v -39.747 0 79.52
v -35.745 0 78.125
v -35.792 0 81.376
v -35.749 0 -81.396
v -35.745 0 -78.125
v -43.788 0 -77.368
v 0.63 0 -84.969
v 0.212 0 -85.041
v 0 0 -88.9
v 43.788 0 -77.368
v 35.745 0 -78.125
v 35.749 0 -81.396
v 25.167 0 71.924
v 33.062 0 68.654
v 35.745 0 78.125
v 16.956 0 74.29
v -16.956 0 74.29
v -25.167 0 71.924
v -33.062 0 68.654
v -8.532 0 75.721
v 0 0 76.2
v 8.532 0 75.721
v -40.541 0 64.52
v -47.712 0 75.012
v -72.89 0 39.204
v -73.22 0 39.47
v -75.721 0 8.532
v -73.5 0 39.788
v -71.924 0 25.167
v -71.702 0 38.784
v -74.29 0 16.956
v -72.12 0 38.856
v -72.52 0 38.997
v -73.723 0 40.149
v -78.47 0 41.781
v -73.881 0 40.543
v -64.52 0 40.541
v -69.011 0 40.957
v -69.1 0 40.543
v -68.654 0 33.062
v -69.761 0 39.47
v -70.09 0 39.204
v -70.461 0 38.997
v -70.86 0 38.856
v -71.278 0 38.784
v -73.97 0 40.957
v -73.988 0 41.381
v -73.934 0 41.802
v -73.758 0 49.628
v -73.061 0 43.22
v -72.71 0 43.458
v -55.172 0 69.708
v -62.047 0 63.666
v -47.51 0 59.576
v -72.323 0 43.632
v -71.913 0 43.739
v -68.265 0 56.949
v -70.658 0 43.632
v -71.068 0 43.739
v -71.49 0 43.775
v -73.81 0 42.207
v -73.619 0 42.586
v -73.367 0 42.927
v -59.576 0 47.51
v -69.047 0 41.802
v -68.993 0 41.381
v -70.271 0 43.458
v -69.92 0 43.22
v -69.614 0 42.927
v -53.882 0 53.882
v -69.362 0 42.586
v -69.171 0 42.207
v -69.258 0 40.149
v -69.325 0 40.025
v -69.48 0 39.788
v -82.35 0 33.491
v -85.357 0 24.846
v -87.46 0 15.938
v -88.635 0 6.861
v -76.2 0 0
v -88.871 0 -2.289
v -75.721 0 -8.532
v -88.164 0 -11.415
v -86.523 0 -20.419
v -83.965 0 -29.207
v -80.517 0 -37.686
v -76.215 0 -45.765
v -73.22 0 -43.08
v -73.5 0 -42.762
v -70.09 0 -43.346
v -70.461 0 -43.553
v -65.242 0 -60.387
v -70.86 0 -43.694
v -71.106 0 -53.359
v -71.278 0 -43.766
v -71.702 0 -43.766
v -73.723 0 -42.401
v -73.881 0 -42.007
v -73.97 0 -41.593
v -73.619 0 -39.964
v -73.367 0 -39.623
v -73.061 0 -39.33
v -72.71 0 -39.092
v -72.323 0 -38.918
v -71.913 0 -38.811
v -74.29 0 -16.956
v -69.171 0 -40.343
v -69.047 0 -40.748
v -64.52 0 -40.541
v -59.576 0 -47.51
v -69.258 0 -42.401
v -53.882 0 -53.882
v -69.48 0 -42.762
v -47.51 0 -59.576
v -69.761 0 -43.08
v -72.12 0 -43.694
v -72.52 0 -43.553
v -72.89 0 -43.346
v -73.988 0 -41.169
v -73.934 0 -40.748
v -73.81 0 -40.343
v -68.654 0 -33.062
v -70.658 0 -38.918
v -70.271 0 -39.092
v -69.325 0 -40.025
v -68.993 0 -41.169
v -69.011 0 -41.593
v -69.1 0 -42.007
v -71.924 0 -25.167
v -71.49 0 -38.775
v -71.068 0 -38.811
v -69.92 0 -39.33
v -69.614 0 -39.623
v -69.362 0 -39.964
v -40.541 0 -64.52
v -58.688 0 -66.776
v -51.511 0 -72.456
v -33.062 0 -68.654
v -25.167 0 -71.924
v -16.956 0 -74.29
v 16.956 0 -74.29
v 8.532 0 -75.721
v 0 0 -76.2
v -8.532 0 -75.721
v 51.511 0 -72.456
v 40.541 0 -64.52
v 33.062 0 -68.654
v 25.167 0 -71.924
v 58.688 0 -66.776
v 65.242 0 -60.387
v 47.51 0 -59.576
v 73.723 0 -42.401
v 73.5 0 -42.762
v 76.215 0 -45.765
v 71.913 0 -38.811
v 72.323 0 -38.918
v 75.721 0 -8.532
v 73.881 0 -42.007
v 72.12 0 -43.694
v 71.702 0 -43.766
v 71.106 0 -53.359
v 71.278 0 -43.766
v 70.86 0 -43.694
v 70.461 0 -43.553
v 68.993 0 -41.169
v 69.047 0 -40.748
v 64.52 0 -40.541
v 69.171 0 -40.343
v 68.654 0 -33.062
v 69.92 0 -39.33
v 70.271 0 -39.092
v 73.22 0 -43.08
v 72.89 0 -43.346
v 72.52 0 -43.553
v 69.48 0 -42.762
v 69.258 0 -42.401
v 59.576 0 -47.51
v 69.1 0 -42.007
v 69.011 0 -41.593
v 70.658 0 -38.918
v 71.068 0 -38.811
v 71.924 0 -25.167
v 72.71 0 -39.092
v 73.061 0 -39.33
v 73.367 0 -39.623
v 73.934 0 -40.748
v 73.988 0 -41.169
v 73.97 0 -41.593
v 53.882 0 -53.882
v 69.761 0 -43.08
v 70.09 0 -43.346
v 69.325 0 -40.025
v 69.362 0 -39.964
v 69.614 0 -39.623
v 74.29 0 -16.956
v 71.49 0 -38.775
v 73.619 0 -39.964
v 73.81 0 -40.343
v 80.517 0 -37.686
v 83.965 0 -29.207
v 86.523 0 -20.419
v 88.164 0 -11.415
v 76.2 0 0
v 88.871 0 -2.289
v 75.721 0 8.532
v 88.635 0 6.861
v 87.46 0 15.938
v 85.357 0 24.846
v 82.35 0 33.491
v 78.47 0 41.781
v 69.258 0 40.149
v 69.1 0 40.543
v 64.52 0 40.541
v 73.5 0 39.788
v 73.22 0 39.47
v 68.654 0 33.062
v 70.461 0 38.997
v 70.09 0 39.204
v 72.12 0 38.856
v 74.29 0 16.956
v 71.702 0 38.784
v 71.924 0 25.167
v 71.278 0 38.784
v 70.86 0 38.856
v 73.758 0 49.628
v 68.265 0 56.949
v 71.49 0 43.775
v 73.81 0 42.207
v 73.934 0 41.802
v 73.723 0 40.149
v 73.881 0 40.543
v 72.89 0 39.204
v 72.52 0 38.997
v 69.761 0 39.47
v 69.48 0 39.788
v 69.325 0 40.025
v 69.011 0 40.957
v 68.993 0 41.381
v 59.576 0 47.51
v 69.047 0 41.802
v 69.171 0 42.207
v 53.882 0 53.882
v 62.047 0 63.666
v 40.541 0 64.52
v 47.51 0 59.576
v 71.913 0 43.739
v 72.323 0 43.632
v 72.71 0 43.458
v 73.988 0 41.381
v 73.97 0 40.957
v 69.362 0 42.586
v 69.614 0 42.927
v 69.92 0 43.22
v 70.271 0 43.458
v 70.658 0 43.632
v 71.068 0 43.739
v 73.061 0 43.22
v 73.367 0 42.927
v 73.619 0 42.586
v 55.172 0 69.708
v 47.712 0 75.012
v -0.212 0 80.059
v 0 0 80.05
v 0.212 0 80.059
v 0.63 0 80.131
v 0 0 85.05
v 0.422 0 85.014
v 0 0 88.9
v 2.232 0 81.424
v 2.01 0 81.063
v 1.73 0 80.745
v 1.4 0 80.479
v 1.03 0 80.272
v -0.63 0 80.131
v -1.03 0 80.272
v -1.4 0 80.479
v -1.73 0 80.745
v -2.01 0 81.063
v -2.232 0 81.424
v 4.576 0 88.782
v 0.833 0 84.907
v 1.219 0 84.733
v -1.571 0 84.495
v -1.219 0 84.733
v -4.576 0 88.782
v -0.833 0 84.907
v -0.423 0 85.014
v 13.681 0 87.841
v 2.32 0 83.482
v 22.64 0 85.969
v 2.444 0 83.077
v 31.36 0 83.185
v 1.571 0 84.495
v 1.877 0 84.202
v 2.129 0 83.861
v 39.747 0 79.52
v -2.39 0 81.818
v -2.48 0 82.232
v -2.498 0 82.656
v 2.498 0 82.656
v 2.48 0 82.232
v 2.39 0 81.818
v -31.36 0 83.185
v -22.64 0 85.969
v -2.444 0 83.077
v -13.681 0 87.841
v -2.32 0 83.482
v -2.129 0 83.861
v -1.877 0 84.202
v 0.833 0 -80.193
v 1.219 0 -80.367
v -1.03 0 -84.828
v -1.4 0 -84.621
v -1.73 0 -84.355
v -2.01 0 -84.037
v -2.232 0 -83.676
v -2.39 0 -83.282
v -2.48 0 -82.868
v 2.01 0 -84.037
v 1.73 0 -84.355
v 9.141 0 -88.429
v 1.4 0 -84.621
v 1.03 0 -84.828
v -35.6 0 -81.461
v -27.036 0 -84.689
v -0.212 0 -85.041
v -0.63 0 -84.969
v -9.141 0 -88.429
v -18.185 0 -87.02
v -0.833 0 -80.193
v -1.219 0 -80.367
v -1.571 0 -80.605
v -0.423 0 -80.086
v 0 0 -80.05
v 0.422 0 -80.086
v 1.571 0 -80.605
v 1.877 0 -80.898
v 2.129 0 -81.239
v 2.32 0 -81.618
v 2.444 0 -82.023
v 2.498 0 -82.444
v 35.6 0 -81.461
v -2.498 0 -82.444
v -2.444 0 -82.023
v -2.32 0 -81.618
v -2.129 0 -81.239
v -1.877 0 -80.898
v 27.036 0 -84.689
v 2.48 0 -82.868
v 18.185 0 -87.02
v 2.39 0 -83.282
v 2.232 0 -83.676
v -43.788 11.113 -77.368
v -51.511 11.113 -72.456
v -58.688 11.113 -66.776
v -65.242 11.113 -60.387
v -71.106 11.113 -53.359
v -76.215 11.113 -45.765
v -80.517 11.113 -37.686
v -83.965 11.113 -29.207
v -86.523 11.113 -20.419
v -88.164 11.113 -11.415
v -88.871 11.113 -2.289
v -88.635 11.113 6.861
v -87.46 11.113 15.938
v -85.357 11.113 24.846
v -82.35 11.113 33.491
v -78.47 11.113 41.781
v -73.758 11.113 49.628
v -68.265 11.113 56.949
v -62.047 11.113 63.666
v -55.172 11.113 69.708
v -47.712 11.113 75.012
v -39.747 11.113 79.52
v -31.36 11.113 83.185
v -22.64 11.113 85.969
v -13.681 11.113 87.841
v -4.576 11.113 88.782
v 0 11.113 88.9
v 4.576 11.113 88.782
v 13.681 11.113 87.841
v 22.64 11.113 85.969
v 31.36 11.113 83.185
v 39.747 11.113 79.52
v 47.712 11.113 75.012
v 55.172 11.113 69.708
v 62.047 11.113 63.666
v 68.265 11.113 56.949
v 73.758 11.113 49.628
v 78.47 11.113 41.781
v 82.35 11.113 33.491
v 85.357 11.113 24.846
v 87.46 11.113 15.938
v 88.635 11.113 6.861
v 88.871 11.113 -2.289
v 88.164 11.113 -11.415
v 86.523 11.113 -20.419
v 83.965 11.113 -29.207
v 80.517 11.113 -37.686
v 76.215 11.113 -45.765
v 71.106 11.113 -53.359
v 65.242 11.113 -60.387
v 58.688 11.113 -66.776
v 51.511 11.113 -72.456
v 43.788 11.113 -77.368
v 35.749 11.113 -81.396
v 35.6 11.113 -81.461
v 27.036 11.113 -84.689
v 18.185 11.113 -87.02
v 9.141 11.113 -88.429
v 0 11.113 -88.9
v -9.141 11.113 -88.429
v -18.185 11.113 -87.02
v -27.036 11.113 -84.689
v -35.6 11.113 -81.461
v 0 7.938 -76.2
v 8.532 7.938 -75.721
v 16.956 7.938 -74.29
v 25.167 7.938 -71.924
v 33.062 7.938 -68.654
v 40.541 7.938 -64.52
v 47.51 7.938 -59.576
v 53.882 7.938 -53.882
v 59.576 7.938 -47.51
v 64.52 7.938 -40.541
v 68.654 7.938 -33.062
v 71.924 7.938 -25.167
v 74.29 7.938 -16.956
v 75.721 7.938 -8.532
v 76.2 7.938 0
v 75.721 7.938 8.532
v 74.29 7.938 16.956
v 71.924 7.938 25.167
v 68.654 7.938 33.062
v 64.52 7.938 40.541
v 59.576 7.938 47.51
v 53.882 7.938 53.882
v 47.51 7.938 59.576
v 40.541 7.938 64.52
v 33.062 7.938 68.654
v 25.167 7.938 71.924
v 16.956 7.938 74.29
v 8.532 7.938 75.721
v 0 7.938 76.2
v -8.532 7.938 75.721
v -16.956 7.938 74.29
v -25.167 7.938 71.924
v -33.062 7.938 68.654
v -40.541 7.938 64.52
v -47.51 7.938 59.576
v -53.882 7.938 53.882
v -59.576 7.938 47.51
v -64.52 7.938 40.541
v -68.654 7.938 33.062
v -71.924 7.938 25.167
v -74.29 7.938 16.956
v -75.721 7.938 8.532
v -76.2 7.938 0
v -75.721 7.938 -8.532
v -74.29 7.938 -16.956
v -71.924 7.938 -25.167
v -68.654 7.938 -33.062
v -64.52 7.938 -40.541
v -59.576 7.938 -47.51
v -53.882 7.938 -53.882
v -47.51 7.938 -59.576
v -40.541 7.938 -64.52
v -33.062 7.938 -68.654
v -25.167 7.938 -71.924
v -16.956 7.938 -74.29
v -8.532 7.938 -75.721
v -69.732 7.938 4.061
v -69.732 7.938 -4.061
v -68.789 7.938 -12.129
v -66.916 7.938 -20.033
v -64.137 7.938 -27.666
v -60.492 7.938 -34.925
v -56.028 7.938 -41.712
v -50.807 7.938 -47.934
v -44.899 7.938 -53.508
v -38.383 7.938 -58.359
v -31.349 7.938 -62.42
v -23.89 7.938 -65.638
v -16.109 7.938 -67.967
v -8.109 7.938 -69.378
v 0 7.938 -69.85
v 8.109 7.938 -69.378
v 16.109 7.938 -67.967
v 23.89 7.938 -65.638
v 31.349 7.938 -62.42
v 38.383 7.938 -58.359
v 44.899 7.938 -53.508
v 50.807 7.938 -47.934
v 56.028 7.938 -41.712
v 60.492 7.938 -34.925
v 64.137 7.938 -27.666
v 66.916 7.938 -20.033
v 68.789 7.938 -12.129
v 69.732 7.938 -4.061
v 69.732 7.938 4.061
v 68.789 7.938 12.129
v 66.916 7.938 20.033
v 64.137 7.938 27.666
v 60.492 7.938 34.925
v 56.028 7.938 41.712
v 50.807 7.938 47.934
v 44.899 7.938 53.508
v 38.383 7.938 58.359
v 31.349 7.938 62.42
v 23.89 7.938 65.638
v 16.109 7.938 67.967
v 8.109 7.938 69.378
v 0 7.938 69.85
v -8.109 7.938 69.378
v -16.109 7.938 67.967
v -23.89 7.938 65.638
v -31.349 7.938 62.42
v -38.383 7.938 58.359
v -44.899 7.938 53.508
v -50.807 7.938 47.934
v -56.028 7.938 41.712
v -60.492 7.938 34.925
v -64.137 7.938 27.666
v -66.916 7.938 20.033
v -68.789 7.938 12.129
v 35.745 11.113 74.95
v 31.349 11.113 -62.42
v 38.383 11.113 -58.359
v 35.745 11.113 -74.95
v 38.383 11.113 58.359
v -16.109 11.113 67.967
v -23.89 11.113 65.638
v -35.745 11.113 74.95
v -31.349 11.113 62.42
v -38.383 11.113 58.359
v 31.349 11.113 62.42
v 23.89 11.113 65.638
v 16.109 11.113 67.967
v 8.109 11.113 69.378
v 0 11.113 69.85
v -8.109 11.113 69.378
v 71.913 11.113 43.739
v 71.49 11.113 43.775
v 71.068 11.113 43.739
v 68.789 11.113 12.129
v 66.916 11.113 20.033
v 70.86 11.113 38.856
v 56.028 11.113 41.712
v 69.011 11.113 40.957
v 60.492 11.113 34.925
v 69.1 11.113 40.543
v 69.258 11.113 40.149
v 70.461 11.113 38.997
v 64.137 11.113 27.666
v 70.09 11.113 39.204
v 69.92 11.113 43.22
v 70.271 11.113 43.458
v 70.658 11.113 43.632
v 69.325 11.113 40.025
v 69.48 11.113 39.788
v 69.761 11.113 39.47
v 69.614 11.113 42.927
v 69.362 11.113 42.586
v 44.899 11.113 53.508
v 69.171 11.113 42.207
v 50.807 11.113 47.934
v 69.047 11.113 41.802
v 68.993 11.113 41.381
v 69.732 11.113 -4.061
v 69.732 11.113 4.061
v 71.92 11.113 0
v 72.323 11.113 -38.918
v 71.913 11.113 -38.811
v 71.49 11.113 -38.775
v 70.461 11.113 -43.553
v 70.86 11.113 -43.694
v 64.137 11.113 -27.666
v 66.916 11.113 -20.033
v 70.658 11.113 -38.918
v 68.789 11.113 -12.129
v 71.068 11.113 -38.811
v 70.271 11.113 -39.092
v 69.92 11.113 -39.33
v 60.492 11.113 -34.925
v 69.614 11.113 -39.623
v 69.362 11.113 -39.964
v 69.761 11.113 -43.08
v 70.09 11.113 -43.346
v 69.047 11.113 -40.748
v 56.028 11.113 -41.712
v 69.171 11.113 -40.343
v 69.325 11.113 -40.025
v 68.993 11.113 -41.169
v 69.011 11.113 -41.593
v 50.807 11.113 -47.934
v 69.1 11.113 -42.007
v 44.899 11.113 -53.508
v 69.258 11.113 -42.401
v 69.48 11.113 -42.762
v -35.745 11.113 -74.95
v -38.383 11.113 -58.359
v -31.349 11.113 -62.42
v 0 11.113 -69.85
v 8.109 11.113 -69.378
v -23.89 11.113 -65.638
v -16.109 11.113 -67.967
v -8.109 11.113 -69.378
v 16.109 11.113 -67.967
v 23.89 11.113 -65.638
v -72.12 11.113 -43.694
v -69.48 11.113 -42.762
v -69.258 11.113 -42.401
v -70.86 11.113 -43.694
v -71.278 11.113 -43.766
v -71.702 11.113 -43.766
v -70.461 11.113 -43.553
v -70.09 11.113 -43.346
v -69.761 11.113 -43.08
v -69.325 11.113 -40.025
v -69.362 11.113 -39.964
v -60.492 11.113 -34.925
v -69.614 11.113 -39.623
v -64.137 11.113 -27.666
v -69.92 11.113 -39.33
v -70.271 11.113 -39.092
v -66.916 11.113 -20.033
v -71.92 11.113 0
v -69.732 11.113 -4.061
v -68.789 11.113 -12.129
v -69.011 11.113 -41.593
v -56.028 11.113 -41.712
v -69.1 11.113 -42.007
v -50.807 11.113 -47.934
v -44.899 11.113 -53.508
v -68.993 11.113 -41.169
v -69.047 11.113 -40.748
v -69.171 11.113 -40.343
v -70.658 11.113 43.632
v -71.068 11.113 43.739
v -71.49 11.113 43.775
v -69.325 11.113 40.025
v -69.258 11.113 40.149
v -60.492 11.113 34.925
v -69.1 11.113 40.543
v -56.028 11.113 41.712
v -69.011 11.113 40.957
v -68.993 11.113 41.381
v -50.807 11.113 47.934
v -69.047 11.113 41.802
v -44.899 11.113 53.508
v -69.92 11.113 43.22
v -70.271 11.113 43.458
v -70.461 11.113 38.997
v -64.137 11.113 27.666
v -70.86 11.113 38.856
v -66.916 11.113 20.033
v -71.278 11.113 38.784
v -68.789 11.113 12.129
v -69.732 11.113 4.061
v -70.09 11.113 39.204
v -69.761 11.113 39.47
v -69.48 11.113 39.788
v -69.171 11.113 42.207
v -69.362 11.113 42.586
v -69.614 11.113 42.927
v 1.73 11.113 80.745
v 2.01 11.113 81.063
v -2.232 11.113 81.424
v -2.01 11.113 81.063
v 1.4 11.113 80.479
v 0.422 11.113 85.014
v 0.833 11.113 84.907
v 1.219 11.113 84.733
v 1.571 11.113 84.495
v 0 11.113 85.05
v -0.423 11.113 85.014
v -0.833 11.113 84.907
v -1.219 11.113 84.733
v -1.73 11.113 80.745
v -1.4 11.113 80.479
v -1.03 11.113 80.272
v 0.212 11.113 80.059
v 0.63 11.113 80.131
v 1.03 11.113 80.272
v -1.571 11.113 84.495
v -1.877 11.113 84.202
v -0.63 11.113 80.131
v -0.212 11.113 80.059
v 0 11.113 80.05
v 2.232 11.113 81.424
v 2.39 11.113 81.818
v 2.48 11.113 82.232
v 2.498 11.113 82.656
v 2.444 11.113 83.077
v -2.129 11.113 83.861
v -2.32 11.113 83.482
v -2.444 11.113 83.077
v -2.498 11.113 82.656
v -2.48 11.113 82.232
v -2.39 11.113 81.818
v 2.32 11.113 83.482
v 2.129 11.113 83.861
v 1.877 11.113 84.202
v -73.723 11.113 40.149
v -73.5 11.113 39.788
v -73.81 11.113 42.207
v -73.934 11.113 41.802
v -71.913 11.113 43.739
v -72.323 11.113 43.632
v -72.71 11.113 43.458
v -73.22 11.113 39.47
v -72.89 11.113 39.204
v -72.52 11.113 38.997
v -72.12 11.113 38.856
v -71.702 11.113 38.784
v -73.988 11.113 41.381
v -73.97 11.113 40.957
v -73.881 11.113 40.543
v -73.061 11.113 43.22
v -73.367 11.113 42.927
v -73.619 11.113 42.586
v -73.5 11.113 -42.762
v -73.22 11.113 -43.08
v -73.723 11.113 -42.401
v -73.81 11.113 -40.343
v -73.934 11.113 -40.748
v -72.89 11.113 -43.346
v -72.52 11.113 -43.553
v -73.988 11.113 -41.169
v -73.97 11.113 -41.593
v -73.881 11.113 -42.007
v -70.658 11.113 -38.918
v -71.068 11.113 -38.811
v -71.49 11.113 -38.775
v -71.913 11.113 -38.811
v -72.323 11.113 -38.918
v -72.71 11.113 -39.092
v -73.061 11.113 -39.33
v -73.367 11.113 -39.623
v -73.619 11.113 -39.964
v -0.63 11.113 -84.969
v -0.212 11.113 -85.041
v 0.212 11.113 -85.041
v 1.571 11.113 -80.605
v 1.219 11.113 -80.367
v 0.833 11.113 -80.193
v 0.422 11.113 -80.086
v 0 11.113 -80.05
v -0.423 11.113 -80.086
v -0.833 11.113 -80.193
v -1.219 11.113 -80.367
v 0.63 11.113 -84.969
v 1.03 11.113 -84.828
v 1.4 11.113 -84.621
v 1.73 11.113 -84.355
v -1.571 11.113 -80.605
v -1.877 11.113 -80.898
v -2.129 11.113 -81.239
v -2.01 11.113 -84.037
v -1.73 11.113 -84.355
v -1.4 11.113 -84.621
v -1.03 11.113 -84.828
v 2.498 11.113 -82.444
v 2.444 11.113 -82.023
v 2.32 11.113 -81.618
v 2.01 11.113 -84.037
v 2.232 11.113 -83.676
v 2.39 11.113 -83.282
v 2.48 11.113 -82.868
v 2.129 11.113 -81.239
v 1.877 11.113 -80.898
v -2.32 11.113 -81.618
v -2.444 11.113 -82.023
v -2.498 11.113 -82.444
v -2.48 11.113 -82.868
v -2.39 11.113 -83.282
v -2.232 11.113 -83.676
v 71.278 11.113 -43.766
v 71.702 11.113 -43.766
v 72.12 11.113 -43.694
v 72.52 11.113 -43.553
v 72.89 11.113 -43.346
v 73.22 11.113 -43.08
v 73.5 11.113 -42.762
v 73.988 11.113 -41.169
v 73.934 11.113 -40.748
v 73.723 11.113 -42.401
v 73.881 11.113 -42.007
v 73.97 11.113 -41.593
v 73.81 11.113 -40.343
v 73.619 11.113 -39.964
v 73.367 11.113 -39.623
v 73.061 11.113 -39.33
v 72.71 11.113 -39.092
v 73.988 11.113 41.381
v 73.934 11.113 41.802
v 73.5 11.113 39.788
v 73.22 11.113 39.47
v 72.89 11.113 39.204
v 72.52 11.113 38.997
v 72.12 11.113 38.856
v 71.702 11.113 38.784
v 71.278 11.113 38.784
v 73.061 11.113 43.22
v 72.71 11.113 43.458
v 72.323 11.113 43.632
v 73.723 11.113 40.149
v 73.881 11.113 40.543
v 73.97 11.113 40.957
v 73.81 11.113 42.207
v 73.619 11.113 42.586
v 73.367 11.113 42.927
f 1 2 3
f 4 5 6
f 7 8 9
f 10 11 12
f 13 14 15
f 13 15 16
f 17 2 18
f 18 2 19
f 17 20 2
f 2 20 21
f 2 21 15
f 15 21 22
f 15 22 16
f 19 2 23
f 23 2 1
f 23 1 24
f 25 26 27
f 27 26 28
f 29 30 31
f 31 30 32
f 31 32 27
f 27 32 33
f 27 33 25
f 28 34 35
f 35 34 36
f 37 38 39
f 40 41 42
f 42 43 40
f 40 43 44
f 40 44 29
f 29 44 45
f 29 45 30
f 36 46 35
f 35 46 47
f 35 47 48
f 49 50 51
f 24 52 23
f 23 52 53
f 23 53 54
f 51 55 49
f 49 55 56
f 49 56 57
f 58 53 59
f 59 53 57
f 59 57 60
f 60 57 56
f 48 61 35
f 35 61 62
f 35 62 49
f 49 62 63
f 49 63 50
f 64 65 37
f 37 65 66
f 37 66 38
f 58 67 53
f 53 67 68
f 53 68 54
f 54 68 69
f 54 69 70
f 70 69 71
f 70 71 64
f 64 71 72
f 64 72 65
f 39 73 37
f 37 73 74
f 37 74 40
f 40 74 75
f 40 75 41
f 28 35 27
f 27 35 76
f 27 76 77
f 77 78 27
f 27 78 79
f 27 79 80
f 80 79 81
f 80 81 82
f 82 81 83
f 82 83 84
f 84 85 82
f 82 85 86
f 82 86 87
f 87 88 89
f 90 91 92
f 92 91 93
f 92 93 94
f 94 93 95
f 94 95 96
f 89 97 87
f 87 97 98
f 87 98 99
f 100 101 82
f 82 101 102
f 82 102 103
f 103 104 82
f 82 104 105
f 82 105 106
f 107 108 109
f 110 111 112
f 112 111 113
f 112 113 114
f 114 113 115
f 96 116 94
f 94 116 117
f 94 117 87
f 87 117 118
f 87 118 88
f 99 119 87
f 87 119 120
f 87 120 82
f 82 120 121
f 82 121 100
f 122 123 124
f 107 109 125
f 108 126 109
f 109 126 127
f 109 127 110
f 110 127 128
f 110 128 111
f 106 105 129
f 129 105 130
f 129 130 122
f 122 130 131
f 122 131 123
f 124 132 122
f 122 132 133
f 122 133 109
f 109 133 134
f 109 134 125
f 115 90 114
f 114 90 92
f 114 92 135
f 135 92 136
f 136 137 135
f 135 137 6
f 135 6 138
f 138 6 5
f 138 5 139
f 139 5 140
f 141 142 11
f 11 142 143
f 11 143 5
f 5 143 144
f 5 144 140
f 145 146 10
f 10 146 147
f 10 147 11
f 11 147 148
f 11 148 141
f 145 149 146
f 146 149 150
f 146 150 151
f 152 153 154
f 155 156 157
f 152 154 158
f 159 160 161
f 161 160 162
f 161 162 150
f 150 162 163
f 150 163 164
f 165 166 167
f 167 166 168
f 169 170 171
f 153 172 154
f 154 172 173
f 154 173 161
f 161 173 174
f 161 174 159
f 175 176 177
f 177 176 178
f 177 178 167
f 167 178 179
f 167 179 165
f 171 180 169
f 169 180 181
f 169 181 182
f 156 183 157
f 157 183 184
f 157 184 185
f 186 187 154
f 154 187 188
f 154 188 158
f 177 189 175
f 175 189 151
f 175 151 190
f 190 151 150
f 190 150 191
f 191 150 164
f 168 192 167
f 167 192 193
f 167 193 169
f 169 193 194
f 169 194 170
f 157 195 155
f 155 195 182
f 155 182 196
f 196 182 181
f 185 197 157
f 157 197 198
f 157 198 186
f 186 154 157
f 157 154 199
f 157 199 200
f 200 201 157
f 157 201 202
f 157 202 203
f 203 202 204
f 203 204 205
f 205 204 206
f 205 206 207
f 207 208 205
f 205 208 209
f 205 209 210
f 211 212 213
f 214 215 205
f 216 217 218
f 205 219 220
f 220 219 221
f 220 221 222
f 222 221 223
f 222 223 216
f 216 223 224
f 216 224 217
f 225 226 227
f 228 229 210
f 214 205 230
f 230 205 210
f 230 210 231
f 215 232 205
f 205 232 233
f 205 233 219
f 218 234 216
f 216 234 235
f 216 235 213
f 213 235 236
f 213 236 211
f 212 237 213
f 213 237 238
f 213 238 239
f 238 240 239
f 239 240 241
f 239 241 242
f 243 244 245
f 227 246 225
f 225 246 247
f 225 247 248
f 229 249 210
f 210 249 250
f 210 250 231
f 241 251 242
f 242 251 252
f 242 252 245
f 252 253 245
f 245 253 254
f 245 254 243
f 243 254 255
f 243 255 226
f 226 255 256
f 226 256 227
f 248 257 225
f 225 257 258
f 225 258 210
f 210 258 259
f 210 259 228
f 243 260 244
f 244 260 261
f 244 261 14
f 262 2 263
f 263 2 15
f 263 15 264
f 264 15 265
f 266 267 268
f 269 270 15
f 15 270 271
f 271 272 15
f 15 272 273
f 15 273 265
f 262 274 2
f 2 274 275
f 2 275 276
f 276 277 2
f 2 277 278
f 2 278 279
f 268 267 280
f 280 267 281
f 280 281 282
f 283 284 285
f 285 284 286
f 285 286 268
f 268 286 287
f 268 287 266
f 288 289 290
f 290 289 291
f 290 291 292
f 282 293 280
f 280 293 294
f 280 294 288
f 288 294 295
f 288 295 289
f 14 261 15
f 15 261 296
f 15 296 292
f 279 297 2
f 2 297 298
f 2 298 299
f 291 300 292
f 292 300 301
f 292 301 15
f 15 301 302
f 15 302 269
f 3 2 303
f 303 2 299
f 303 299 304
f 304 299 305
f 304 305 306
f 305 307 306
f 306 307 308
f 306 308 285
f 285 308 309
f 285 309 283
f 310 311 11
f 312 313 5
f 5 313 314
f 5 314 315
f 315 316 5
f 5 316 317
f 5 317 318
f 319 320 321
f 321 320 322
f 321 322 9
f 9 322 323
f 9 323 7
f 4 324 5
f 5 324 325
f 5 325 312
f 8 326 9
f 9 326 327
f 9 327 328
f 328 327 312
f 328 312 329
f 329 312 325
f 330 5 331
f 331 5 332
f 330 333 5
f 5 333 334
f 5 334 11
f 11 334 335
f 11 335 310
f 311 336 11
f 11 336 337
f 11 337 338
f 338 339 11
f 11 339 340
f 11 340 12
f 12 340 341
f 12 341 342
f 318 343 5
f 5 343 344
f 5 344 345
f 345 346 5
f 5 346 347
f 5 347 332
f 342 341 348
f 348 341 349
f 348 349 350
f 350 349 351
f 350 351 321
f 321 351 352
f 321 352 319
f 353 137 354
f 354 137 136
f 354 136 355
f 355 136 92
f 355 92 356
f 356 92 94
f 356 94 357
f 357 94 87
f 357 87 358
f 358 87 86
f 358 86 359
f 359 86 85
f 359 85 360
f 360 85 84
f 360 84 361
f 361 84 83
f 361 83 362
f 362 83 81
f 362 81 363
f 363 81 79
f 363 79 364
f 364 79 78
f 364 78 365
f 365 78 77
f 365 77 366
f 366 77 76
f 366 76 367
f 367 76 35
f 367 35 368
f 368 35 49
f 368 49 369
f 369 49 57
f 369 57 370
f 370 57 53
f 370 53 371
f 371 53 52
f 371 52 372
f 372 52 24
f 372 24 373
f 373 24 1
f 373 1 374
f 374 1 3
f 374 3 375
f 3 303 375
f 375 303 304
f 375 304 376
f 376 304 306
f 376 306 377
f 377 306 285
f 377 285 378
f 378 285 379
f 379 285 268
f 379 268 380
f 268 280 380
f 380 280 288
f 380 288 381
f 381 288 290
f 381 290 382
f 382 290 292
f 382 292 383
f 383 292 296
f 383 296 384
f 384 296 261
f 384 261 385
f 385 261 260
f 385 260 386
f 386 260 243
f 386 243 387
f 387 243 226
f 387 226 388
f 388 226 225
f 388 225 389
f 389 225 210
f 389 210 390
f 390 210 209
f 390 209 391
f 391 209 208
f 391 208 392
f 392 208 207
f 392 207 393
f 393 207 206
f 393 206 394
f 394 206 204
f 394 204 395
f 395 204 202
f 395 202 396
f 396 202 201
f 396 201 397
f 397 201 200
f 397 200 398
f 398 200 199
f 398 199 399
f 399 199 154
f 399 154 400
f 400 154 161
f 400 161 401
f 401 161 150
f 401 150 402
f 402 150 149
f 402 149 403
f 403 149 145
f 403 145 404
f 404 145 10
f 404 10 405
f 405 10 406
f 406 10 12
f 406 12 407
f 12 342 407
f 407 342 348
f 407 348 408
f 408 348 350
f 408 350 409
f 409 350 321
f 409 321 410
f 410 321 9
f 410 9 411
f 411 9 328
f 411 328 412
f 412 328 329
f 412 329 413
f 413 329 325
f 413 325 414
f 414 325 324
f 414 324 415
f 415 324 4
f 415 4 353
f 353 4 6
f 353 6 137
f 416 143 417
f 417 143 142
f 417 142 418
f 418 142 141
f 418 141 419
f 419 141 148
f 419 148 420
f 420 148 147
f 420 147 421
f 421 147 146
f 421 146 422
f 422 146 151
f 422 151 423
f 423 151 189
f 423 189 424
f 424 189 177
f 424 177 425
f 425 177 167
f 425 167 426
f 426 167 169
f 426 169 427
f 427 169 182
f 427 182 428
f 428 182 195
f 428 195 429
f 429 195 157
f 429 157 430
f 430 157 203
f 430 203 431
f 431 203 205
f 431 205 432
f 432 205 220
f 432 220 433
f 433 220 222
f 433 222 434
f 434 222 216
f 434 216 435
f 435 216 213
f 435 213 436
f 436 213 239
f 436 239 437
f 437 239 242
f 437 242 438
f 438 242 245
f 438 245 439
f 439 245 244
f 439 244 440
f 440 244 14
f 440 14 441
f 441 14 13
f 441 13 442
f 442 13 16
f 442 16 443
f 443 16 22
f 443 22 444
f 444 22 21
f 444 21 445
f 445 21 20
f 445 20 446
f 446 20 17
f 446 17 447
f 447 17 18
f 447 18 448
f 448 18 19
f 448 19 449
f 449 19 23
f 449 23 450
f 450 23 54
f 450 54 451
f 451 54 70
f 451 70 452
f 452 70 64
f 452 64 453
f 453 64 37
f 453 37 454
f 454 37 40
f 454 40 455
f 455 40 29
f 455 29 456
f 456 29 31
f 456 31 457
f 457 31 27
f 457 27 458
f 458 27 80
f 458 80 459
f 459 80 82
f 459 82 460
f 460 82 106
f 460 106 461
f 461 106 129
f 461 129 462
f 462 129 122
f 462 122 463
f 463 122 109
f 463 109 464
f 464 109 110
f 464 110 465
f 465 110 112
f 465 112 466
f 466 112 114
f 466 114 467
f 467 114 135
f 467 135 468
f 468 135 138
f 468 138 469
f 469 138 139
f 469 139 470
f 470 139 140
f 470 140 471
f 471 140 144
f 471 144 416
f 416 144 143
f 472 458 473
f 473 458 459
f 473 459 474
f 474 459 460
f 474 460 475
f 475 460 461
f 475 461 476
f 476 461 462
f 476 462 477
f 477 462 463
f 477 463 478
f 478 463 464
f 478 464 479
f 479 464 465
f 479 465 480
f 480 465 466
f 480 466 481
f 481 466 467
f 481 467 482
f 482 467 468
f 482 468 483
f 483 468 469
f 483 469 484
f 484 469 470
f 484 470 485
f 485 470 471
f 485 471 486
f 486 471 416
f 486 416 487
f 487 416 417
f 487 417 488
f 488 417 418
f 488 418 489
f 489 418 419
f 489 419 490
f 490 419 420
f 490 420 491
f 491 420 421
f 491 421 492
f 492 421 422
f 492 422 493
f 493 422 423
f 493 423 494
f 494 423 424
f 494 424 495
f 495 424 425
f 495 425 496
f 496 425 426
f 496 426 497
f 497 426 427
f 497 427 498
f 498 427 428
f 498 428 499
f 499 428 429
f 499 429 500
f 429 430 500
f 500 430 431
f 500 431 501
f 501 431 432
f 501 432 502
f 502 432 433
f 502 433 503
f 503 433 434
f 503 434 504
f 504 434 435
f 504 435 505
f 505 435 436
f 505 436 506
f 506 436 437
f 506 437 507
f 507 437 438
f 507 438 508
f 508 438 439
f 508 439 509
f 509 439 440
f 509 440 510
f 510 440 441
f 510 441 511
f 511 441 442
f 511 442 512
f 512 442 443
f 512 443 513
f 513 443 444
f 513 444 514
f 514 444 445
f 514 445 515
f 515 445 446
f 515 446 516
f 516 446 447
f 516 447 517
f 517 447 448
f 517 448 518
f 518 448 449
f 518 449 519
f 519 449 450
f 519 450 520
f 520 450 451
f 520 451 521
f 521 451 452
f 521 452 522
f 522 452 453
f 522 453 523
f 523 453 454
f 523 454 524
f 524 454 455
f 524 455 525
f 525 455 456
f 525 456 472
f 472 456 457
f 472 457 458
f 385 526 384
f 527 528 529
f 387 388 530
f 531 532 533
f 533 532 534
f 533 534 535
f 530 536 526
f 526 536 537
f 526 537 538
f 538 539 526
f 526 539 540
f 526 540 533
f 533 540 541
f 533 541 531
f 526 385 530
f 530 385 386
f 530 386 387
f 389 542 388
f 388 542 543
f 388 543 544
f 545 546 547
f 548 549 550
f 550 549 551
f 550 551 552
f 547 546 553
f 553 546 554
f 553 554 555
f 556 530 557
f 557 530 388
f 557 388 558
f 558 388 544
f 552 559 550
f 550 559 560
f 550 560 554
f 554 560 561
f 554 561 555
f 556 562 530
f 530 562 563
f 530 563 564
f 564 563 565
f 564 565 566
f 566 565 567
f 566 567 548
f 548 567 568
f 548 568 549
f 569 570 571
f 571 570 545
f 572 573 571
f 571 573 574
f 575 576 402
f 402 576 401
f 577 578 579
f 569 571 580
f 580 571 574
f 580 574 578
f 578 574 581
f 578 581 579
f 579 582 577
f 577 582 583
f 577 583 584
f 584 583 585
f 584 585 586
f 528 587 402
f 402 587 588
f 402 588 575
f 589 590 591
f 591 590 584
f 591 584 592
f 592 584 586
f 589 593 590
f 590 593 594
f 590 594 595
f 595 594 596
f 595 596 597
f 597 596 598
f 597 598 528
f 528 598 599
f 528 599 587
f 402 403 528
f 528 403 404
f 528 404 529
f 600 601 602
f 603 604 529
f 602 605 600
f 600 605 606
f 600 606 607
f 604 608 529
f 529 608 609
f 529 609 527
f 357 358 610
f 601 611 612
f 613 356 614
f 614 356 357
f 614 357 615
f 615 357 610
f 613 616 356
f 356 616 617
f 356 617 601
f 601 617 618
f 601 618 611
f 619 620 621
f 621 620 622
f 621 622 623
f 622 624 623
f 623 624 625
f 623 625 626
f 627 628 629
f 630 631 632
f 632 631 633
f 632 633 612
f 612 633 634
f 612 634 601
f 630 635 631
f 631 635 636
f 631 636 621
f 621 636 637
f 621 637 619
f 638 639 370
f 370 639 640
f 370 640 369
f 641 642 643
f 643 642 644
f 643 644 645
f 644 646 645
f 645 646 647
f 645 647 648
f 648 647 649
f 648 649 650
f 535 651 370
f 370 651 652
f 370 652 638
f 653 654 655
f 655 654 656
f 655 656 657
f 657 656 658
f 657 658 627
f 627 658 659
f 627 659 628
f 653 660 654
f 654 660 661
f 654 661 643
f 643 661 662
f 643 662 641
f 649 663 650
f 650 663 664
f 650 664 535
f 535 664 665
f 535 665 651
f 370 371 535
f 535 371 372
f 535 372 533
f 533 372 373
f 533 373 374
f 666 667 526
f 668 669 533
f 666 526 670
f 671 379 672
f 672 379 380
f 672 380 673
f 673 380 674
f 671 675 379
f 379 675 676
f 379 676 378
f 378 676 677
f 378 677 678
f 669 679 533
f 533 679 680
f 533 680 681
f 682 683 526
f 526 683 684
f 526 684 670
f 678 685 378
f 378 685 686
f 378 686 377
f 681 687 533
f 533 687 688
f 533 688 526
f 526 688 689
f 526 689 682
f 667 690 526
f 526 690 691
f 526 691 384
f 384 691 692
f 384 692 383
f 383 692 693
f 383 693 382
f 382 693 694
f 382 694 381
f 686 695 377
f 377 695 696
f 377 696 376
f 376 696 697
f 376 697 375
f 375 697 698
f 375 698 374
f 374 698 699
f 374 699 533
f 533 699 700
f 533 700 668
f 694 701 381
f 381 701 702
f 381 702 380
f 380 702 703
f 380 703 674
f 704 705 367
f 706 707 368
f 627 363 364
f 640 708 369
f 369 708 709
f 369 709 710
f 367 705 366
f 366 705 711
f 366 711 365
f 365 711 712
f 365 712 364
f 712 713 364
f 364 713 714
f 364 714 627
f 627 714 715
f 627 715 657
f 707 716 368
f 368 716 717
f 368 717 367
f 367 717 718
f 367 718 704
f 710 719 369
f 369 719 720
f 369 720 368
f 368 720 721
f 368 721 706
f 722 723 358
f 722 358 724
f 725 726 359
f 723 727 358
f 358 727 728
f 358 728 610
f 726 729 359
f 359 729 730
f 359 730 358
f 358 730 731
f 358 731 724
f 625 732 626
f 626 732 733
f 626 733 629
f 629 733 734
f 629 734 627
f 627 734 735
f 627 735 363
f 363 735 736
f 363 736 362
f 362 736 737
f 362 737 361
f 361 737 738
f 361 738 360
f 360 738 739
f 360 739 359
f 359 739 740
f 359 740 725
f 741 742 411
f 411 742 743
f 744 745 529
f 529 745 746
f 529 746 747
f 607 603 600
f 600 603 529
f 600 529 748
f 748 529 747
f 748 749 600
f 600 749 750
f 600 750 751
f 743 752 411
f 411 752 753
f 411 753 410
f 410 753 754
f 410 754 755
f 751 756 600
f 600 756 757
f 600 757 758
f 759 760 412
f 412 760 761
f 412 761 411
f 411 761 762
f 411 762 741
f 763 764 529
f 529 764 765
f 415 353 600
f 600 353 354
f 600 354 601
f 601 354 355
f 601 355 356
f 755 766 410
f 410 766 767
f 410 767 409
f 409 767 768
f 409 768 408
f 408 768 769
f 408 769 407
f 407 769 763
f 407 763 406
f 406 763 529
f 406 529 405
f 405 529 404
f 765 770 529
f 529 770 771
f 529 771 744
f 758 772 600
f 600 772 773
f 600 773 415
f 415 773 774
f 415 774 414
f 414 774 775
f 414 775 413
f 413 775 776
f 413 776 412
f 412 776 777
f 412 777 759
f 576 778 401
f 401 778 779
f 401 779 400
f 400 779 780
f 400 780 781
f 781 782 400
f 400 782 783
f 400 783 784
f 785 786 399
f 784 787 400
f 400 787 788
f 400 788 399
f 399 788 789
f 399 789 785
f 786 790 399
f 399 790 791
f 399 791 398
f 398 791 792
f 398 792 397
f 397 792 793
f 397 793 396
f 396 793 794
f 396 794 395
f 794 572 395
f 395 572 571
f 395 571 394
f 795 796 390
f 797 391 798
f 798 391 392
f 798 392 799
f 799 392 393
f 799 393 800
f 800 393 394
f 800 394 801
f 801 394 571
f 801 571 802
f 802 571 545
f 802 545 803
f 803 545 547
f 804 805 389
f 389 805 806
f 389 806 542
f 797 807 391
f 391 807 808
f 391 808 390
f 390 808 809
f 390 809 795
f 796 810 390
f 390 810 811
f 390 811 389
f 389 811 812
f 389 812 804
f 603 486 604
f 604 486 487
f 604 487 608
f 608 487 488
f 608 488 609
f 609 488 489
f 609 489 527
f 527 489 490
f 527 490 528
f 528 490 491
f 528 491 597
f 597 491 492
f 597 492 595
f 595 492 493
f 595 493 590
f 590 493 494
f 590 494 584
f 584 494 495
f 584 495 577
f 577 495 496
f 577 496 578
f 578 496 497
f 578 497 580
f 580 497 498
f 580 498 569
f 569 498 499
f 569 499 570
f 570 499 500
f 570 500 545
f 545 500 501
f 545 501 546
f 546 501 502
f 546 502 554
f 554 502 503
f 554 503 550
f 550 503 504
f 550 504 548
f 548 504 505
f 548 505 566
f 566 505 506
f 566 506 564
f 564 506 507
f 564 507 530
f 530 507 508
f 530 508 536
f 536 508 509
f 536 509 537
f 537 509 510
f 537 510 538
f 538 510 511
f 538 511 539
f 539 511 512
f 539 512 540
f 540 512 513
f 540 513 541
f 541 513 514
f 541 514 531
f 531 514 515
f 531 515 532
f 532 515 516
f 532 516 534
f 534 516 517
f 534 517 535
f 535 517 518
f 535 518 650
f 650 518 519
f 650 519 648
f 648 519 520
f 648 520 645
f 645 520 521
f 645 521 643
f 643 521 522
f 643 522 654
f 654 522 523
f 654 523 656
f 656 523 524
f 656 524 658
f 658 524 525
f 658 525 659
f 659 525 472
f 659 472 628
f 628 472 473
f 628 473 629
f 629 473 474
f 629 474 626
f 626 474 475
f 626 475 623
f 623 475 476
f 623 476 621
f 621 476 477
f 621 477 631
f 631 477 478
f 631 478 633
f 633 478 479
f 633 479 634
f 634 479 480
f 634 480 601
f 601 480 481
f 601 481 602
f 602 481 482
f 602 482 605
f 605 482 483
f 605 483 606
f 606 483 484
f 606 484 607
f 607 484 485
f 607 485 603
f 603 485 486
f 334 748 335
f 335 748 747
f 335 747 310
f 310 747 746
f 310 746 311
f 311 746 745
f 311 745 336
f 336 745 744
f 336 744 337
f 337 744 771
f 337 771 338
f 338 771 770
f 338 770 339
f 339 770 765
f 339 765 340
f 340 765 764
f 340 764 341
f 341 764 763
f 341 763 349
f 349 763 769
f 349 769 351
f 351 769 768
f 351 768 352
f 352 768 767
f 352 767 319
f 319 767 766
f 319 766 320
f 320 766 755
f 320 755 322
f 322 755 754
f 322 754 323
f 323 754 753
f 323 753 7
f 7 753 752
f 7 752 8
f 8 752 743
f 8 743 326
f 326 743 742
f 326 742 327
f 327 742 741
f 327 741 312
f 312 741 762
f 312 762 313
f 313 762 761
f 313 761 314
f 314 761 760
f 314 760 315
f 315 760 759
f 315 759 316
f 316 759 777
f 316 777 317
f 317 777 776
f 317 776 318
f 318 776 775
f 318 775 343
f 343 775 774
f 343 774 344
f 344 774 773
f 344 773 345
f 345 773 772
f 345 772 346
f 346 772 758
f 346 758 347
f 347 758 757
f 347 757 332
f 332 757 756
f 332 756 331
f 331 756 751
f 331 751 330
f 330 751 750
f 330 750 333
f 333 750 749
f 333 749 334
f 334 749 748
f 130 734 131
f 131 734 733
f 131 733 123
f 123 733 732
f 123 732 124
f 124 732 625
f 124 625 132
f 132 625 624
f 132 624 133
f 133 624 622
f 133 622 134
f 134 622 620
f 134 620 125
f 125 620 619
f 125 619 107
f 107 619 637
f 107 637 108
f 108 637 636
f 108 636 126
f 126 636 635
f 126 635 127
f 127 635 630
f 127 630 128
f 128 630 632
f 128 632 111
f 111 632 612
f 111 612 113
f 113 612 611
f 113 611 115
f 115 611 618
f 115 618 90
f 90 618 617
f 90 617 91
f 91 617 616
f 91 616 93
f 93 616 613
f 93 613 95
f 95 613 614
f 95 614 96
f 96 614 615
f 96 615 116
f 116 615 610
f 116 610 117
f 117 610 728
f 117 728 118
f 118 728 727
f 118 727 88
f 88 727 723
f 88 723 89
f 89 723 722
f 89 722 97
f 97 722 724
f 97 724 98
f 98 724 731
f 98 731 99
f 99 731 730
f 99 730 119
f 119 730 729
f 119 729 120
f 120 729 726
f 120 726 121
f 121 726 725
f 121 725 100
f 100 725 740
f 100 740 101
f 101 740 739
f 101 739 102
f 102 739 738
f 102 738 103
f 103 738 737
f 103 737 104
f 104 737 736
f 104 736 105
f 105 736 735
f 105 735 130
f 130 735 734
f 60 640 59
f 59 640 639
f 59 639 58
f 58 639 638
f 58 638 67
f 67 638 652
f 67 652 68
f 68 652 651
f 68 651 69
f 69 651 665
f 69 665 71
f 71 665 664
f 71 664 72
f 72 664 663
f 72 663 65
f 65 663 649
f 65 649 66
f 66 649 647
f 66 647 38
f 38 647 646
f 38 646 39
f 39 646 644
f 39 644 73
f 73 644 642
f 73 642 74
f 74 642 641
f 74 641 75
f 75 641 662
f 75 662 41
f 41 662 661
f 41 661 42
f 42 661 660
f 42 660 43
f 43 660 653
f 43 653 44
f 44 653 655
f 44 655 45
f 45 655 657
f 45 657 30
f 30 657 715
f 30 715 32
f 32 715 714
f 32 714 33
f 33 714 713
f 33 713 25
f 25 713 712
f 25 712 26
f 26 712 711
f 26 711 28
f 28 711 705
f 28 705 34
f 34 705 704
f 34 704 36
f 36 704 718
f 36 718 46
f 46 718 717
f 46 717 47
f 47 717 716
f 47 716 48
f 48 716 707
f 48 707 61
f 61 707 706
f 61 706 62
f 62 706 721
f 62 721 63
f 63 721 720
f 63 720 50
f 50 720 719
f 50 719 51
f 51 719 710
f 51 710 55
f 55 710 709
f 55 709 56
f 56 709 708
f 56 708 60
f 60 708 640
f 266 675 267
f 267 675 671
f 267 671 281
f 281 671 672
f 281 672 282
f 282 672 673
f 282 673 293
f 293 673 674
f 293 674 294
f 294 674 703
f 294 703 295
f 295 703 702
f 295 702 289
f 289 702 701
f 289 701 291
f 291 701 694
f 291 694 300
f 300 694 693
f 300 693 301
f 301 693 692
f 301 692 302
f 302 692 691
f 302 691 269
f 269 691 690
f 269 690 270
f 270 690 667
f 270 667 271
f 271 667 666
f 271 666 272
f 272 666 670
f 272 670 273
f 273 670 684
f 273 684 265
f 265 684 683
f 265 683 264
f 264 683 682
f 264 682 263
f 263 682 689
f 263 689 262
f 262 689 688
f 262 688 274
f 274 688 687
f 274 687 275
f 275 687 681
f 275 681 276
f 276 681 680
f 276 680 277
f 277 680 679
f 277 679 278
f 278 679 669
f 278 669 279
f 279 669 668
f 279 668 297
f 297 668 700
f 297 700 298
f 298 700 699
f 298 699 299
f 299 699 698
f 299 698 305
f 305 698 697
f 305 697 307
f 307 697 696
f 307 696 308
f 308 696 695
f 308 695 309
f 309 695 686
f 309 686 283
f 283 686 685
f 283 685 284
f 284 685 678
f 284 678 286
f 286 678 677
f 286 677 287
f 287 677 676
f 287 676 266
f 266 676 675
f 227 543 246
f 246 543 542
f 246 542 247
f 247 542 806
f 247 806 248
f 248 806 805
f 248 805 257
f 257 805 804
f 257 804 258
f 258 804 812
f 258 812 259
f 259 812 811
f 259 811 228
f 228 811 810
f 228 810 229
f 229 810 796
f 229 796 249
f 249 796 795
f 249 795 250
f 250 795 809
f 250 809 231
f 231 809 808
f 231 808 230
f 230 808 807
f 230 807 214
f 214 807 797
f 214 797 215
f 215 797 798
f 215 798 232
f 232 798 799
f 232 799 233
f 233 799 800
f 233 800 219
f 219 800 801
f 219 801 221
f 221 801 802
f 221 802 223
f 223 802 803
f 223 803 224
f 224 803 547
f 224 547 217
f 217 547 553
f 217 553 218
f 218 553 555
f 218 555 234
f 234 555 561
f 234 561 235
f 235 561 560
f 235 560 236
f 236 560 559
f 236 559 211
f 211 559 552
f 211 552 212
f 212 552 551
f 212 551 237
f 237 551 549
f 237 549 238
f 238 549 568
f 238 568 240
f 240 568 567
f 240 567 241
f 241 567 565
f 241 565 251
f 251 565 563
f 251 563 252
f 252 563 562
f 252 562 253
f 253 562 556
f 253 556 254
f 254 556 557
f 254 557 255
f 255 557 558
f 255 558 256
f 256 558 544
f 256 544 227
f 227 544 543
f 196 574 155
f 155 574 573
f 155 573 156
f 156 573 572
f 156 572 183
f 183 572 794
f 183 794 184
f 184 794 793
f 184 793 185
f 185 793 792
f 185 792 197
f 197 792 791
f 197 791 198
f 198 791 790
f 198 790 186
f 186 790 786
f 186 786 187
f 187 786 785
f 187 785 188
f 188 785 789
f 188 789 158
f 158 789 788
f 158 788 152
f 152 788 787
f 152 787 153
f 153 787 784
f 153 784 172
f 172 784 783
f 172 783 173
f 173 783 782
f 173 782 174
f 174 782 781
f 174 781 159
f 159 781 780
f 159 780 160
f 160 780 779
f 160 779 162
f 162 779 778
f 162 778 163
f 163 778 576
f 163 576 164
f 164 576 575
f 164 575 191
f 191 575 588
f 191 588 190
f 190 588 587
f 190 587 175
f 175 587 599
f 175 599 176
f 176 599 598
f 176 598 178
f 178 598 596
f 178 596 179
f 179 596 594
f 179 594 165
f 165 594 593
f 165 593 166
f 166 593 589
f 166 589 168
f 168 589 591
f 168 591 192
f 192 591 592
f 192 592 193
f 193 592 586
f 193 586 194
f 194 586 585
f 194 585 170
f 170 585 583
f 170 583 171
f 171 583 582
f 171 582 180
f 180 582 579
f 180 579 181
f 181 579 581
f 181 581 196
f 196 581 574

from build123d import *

# Parameters (mm, degrees)
SKETCH1_R           = 88.9
SKETCH1_R_2         = 76.2
BOSS_EXTRUDE1_DEPTH = 7.9375
SKETCH2_R           = 88.9
SKETCH2_R_2         = 69.85
BOSS_EXTRUDE2_DEPTH = 3.175
SKETCH3_R           = 2.5
CUT_EXTRUDE1_DEPTH  = 127.213737985
CIRPATTERN1_COUNT   = 6


with BuildPart() as part:
    # Sketch1 → Boss-Extrude1 (new body)
    with BuildSketch(Plane(origin=(0, 0, 0), x_dir=(1, 0, 0), z_dir=(0, 1, 0))):
        with Locations(Location((0, 0, 0), (0, 0, 270))):
            Circle(SKETCH1_R)
        with Locations(Location((0, 0, 0), (0, 0, 270))):
            Circle(SKETCH1_R_2, mode=Mode.SUBTRACT)
    extrude(amount=BOSS_EXTRUDE1_DEPTH)

    # Sketch2 → Boss-Extrude2 (add)
    with BuildSketch(Plane(origin=(0, 7.9375, 0), x_dir=(1, 0, 0), z_dir=(0, 1, 0))):
        with Locations(Location((0, 0, 0), (0, 0, 270))):
            Circle(SKETCH2_R)
        with Locations(Location((0, 0, 0), (0, 0, 270))):
            Circle(SKETCH2_R_2, mode=Mode.SUBTRACT)
    extrude(amount=BOSS_EXTRUDE2_DEPTH)

    # Sketch3 → Cut-Extrude1 (cut, through all)
    with BuildSketch(Plane(origin=(0, 11.1125, 0), x_dir=(1, 0, 0), z_dir=(0, 1, 0))):
        with Locations(Location((0, 82.55, 0), (0, 0, 270))):
            Circle(SKETCH3_R)
    cut_extrude1 = extrude(amount=-CUT_EXTRUDE1_DEPTH, mode=Mode.SUBTRACT)

    # CirPattern1: Cut-Extrude1 ×6 about axis
    cirpattern1_axis = Axis((0, 0, 0), (0, 1, 0))
    for i in range(1, CIRPATTERN1_COUNT):
        add(cut_extrude1.rotate(cirpattern1_axis, i * 360 / CIRPATTERN1_COUNT), mode=Mode.SUBTRACT)


solid = part.part
